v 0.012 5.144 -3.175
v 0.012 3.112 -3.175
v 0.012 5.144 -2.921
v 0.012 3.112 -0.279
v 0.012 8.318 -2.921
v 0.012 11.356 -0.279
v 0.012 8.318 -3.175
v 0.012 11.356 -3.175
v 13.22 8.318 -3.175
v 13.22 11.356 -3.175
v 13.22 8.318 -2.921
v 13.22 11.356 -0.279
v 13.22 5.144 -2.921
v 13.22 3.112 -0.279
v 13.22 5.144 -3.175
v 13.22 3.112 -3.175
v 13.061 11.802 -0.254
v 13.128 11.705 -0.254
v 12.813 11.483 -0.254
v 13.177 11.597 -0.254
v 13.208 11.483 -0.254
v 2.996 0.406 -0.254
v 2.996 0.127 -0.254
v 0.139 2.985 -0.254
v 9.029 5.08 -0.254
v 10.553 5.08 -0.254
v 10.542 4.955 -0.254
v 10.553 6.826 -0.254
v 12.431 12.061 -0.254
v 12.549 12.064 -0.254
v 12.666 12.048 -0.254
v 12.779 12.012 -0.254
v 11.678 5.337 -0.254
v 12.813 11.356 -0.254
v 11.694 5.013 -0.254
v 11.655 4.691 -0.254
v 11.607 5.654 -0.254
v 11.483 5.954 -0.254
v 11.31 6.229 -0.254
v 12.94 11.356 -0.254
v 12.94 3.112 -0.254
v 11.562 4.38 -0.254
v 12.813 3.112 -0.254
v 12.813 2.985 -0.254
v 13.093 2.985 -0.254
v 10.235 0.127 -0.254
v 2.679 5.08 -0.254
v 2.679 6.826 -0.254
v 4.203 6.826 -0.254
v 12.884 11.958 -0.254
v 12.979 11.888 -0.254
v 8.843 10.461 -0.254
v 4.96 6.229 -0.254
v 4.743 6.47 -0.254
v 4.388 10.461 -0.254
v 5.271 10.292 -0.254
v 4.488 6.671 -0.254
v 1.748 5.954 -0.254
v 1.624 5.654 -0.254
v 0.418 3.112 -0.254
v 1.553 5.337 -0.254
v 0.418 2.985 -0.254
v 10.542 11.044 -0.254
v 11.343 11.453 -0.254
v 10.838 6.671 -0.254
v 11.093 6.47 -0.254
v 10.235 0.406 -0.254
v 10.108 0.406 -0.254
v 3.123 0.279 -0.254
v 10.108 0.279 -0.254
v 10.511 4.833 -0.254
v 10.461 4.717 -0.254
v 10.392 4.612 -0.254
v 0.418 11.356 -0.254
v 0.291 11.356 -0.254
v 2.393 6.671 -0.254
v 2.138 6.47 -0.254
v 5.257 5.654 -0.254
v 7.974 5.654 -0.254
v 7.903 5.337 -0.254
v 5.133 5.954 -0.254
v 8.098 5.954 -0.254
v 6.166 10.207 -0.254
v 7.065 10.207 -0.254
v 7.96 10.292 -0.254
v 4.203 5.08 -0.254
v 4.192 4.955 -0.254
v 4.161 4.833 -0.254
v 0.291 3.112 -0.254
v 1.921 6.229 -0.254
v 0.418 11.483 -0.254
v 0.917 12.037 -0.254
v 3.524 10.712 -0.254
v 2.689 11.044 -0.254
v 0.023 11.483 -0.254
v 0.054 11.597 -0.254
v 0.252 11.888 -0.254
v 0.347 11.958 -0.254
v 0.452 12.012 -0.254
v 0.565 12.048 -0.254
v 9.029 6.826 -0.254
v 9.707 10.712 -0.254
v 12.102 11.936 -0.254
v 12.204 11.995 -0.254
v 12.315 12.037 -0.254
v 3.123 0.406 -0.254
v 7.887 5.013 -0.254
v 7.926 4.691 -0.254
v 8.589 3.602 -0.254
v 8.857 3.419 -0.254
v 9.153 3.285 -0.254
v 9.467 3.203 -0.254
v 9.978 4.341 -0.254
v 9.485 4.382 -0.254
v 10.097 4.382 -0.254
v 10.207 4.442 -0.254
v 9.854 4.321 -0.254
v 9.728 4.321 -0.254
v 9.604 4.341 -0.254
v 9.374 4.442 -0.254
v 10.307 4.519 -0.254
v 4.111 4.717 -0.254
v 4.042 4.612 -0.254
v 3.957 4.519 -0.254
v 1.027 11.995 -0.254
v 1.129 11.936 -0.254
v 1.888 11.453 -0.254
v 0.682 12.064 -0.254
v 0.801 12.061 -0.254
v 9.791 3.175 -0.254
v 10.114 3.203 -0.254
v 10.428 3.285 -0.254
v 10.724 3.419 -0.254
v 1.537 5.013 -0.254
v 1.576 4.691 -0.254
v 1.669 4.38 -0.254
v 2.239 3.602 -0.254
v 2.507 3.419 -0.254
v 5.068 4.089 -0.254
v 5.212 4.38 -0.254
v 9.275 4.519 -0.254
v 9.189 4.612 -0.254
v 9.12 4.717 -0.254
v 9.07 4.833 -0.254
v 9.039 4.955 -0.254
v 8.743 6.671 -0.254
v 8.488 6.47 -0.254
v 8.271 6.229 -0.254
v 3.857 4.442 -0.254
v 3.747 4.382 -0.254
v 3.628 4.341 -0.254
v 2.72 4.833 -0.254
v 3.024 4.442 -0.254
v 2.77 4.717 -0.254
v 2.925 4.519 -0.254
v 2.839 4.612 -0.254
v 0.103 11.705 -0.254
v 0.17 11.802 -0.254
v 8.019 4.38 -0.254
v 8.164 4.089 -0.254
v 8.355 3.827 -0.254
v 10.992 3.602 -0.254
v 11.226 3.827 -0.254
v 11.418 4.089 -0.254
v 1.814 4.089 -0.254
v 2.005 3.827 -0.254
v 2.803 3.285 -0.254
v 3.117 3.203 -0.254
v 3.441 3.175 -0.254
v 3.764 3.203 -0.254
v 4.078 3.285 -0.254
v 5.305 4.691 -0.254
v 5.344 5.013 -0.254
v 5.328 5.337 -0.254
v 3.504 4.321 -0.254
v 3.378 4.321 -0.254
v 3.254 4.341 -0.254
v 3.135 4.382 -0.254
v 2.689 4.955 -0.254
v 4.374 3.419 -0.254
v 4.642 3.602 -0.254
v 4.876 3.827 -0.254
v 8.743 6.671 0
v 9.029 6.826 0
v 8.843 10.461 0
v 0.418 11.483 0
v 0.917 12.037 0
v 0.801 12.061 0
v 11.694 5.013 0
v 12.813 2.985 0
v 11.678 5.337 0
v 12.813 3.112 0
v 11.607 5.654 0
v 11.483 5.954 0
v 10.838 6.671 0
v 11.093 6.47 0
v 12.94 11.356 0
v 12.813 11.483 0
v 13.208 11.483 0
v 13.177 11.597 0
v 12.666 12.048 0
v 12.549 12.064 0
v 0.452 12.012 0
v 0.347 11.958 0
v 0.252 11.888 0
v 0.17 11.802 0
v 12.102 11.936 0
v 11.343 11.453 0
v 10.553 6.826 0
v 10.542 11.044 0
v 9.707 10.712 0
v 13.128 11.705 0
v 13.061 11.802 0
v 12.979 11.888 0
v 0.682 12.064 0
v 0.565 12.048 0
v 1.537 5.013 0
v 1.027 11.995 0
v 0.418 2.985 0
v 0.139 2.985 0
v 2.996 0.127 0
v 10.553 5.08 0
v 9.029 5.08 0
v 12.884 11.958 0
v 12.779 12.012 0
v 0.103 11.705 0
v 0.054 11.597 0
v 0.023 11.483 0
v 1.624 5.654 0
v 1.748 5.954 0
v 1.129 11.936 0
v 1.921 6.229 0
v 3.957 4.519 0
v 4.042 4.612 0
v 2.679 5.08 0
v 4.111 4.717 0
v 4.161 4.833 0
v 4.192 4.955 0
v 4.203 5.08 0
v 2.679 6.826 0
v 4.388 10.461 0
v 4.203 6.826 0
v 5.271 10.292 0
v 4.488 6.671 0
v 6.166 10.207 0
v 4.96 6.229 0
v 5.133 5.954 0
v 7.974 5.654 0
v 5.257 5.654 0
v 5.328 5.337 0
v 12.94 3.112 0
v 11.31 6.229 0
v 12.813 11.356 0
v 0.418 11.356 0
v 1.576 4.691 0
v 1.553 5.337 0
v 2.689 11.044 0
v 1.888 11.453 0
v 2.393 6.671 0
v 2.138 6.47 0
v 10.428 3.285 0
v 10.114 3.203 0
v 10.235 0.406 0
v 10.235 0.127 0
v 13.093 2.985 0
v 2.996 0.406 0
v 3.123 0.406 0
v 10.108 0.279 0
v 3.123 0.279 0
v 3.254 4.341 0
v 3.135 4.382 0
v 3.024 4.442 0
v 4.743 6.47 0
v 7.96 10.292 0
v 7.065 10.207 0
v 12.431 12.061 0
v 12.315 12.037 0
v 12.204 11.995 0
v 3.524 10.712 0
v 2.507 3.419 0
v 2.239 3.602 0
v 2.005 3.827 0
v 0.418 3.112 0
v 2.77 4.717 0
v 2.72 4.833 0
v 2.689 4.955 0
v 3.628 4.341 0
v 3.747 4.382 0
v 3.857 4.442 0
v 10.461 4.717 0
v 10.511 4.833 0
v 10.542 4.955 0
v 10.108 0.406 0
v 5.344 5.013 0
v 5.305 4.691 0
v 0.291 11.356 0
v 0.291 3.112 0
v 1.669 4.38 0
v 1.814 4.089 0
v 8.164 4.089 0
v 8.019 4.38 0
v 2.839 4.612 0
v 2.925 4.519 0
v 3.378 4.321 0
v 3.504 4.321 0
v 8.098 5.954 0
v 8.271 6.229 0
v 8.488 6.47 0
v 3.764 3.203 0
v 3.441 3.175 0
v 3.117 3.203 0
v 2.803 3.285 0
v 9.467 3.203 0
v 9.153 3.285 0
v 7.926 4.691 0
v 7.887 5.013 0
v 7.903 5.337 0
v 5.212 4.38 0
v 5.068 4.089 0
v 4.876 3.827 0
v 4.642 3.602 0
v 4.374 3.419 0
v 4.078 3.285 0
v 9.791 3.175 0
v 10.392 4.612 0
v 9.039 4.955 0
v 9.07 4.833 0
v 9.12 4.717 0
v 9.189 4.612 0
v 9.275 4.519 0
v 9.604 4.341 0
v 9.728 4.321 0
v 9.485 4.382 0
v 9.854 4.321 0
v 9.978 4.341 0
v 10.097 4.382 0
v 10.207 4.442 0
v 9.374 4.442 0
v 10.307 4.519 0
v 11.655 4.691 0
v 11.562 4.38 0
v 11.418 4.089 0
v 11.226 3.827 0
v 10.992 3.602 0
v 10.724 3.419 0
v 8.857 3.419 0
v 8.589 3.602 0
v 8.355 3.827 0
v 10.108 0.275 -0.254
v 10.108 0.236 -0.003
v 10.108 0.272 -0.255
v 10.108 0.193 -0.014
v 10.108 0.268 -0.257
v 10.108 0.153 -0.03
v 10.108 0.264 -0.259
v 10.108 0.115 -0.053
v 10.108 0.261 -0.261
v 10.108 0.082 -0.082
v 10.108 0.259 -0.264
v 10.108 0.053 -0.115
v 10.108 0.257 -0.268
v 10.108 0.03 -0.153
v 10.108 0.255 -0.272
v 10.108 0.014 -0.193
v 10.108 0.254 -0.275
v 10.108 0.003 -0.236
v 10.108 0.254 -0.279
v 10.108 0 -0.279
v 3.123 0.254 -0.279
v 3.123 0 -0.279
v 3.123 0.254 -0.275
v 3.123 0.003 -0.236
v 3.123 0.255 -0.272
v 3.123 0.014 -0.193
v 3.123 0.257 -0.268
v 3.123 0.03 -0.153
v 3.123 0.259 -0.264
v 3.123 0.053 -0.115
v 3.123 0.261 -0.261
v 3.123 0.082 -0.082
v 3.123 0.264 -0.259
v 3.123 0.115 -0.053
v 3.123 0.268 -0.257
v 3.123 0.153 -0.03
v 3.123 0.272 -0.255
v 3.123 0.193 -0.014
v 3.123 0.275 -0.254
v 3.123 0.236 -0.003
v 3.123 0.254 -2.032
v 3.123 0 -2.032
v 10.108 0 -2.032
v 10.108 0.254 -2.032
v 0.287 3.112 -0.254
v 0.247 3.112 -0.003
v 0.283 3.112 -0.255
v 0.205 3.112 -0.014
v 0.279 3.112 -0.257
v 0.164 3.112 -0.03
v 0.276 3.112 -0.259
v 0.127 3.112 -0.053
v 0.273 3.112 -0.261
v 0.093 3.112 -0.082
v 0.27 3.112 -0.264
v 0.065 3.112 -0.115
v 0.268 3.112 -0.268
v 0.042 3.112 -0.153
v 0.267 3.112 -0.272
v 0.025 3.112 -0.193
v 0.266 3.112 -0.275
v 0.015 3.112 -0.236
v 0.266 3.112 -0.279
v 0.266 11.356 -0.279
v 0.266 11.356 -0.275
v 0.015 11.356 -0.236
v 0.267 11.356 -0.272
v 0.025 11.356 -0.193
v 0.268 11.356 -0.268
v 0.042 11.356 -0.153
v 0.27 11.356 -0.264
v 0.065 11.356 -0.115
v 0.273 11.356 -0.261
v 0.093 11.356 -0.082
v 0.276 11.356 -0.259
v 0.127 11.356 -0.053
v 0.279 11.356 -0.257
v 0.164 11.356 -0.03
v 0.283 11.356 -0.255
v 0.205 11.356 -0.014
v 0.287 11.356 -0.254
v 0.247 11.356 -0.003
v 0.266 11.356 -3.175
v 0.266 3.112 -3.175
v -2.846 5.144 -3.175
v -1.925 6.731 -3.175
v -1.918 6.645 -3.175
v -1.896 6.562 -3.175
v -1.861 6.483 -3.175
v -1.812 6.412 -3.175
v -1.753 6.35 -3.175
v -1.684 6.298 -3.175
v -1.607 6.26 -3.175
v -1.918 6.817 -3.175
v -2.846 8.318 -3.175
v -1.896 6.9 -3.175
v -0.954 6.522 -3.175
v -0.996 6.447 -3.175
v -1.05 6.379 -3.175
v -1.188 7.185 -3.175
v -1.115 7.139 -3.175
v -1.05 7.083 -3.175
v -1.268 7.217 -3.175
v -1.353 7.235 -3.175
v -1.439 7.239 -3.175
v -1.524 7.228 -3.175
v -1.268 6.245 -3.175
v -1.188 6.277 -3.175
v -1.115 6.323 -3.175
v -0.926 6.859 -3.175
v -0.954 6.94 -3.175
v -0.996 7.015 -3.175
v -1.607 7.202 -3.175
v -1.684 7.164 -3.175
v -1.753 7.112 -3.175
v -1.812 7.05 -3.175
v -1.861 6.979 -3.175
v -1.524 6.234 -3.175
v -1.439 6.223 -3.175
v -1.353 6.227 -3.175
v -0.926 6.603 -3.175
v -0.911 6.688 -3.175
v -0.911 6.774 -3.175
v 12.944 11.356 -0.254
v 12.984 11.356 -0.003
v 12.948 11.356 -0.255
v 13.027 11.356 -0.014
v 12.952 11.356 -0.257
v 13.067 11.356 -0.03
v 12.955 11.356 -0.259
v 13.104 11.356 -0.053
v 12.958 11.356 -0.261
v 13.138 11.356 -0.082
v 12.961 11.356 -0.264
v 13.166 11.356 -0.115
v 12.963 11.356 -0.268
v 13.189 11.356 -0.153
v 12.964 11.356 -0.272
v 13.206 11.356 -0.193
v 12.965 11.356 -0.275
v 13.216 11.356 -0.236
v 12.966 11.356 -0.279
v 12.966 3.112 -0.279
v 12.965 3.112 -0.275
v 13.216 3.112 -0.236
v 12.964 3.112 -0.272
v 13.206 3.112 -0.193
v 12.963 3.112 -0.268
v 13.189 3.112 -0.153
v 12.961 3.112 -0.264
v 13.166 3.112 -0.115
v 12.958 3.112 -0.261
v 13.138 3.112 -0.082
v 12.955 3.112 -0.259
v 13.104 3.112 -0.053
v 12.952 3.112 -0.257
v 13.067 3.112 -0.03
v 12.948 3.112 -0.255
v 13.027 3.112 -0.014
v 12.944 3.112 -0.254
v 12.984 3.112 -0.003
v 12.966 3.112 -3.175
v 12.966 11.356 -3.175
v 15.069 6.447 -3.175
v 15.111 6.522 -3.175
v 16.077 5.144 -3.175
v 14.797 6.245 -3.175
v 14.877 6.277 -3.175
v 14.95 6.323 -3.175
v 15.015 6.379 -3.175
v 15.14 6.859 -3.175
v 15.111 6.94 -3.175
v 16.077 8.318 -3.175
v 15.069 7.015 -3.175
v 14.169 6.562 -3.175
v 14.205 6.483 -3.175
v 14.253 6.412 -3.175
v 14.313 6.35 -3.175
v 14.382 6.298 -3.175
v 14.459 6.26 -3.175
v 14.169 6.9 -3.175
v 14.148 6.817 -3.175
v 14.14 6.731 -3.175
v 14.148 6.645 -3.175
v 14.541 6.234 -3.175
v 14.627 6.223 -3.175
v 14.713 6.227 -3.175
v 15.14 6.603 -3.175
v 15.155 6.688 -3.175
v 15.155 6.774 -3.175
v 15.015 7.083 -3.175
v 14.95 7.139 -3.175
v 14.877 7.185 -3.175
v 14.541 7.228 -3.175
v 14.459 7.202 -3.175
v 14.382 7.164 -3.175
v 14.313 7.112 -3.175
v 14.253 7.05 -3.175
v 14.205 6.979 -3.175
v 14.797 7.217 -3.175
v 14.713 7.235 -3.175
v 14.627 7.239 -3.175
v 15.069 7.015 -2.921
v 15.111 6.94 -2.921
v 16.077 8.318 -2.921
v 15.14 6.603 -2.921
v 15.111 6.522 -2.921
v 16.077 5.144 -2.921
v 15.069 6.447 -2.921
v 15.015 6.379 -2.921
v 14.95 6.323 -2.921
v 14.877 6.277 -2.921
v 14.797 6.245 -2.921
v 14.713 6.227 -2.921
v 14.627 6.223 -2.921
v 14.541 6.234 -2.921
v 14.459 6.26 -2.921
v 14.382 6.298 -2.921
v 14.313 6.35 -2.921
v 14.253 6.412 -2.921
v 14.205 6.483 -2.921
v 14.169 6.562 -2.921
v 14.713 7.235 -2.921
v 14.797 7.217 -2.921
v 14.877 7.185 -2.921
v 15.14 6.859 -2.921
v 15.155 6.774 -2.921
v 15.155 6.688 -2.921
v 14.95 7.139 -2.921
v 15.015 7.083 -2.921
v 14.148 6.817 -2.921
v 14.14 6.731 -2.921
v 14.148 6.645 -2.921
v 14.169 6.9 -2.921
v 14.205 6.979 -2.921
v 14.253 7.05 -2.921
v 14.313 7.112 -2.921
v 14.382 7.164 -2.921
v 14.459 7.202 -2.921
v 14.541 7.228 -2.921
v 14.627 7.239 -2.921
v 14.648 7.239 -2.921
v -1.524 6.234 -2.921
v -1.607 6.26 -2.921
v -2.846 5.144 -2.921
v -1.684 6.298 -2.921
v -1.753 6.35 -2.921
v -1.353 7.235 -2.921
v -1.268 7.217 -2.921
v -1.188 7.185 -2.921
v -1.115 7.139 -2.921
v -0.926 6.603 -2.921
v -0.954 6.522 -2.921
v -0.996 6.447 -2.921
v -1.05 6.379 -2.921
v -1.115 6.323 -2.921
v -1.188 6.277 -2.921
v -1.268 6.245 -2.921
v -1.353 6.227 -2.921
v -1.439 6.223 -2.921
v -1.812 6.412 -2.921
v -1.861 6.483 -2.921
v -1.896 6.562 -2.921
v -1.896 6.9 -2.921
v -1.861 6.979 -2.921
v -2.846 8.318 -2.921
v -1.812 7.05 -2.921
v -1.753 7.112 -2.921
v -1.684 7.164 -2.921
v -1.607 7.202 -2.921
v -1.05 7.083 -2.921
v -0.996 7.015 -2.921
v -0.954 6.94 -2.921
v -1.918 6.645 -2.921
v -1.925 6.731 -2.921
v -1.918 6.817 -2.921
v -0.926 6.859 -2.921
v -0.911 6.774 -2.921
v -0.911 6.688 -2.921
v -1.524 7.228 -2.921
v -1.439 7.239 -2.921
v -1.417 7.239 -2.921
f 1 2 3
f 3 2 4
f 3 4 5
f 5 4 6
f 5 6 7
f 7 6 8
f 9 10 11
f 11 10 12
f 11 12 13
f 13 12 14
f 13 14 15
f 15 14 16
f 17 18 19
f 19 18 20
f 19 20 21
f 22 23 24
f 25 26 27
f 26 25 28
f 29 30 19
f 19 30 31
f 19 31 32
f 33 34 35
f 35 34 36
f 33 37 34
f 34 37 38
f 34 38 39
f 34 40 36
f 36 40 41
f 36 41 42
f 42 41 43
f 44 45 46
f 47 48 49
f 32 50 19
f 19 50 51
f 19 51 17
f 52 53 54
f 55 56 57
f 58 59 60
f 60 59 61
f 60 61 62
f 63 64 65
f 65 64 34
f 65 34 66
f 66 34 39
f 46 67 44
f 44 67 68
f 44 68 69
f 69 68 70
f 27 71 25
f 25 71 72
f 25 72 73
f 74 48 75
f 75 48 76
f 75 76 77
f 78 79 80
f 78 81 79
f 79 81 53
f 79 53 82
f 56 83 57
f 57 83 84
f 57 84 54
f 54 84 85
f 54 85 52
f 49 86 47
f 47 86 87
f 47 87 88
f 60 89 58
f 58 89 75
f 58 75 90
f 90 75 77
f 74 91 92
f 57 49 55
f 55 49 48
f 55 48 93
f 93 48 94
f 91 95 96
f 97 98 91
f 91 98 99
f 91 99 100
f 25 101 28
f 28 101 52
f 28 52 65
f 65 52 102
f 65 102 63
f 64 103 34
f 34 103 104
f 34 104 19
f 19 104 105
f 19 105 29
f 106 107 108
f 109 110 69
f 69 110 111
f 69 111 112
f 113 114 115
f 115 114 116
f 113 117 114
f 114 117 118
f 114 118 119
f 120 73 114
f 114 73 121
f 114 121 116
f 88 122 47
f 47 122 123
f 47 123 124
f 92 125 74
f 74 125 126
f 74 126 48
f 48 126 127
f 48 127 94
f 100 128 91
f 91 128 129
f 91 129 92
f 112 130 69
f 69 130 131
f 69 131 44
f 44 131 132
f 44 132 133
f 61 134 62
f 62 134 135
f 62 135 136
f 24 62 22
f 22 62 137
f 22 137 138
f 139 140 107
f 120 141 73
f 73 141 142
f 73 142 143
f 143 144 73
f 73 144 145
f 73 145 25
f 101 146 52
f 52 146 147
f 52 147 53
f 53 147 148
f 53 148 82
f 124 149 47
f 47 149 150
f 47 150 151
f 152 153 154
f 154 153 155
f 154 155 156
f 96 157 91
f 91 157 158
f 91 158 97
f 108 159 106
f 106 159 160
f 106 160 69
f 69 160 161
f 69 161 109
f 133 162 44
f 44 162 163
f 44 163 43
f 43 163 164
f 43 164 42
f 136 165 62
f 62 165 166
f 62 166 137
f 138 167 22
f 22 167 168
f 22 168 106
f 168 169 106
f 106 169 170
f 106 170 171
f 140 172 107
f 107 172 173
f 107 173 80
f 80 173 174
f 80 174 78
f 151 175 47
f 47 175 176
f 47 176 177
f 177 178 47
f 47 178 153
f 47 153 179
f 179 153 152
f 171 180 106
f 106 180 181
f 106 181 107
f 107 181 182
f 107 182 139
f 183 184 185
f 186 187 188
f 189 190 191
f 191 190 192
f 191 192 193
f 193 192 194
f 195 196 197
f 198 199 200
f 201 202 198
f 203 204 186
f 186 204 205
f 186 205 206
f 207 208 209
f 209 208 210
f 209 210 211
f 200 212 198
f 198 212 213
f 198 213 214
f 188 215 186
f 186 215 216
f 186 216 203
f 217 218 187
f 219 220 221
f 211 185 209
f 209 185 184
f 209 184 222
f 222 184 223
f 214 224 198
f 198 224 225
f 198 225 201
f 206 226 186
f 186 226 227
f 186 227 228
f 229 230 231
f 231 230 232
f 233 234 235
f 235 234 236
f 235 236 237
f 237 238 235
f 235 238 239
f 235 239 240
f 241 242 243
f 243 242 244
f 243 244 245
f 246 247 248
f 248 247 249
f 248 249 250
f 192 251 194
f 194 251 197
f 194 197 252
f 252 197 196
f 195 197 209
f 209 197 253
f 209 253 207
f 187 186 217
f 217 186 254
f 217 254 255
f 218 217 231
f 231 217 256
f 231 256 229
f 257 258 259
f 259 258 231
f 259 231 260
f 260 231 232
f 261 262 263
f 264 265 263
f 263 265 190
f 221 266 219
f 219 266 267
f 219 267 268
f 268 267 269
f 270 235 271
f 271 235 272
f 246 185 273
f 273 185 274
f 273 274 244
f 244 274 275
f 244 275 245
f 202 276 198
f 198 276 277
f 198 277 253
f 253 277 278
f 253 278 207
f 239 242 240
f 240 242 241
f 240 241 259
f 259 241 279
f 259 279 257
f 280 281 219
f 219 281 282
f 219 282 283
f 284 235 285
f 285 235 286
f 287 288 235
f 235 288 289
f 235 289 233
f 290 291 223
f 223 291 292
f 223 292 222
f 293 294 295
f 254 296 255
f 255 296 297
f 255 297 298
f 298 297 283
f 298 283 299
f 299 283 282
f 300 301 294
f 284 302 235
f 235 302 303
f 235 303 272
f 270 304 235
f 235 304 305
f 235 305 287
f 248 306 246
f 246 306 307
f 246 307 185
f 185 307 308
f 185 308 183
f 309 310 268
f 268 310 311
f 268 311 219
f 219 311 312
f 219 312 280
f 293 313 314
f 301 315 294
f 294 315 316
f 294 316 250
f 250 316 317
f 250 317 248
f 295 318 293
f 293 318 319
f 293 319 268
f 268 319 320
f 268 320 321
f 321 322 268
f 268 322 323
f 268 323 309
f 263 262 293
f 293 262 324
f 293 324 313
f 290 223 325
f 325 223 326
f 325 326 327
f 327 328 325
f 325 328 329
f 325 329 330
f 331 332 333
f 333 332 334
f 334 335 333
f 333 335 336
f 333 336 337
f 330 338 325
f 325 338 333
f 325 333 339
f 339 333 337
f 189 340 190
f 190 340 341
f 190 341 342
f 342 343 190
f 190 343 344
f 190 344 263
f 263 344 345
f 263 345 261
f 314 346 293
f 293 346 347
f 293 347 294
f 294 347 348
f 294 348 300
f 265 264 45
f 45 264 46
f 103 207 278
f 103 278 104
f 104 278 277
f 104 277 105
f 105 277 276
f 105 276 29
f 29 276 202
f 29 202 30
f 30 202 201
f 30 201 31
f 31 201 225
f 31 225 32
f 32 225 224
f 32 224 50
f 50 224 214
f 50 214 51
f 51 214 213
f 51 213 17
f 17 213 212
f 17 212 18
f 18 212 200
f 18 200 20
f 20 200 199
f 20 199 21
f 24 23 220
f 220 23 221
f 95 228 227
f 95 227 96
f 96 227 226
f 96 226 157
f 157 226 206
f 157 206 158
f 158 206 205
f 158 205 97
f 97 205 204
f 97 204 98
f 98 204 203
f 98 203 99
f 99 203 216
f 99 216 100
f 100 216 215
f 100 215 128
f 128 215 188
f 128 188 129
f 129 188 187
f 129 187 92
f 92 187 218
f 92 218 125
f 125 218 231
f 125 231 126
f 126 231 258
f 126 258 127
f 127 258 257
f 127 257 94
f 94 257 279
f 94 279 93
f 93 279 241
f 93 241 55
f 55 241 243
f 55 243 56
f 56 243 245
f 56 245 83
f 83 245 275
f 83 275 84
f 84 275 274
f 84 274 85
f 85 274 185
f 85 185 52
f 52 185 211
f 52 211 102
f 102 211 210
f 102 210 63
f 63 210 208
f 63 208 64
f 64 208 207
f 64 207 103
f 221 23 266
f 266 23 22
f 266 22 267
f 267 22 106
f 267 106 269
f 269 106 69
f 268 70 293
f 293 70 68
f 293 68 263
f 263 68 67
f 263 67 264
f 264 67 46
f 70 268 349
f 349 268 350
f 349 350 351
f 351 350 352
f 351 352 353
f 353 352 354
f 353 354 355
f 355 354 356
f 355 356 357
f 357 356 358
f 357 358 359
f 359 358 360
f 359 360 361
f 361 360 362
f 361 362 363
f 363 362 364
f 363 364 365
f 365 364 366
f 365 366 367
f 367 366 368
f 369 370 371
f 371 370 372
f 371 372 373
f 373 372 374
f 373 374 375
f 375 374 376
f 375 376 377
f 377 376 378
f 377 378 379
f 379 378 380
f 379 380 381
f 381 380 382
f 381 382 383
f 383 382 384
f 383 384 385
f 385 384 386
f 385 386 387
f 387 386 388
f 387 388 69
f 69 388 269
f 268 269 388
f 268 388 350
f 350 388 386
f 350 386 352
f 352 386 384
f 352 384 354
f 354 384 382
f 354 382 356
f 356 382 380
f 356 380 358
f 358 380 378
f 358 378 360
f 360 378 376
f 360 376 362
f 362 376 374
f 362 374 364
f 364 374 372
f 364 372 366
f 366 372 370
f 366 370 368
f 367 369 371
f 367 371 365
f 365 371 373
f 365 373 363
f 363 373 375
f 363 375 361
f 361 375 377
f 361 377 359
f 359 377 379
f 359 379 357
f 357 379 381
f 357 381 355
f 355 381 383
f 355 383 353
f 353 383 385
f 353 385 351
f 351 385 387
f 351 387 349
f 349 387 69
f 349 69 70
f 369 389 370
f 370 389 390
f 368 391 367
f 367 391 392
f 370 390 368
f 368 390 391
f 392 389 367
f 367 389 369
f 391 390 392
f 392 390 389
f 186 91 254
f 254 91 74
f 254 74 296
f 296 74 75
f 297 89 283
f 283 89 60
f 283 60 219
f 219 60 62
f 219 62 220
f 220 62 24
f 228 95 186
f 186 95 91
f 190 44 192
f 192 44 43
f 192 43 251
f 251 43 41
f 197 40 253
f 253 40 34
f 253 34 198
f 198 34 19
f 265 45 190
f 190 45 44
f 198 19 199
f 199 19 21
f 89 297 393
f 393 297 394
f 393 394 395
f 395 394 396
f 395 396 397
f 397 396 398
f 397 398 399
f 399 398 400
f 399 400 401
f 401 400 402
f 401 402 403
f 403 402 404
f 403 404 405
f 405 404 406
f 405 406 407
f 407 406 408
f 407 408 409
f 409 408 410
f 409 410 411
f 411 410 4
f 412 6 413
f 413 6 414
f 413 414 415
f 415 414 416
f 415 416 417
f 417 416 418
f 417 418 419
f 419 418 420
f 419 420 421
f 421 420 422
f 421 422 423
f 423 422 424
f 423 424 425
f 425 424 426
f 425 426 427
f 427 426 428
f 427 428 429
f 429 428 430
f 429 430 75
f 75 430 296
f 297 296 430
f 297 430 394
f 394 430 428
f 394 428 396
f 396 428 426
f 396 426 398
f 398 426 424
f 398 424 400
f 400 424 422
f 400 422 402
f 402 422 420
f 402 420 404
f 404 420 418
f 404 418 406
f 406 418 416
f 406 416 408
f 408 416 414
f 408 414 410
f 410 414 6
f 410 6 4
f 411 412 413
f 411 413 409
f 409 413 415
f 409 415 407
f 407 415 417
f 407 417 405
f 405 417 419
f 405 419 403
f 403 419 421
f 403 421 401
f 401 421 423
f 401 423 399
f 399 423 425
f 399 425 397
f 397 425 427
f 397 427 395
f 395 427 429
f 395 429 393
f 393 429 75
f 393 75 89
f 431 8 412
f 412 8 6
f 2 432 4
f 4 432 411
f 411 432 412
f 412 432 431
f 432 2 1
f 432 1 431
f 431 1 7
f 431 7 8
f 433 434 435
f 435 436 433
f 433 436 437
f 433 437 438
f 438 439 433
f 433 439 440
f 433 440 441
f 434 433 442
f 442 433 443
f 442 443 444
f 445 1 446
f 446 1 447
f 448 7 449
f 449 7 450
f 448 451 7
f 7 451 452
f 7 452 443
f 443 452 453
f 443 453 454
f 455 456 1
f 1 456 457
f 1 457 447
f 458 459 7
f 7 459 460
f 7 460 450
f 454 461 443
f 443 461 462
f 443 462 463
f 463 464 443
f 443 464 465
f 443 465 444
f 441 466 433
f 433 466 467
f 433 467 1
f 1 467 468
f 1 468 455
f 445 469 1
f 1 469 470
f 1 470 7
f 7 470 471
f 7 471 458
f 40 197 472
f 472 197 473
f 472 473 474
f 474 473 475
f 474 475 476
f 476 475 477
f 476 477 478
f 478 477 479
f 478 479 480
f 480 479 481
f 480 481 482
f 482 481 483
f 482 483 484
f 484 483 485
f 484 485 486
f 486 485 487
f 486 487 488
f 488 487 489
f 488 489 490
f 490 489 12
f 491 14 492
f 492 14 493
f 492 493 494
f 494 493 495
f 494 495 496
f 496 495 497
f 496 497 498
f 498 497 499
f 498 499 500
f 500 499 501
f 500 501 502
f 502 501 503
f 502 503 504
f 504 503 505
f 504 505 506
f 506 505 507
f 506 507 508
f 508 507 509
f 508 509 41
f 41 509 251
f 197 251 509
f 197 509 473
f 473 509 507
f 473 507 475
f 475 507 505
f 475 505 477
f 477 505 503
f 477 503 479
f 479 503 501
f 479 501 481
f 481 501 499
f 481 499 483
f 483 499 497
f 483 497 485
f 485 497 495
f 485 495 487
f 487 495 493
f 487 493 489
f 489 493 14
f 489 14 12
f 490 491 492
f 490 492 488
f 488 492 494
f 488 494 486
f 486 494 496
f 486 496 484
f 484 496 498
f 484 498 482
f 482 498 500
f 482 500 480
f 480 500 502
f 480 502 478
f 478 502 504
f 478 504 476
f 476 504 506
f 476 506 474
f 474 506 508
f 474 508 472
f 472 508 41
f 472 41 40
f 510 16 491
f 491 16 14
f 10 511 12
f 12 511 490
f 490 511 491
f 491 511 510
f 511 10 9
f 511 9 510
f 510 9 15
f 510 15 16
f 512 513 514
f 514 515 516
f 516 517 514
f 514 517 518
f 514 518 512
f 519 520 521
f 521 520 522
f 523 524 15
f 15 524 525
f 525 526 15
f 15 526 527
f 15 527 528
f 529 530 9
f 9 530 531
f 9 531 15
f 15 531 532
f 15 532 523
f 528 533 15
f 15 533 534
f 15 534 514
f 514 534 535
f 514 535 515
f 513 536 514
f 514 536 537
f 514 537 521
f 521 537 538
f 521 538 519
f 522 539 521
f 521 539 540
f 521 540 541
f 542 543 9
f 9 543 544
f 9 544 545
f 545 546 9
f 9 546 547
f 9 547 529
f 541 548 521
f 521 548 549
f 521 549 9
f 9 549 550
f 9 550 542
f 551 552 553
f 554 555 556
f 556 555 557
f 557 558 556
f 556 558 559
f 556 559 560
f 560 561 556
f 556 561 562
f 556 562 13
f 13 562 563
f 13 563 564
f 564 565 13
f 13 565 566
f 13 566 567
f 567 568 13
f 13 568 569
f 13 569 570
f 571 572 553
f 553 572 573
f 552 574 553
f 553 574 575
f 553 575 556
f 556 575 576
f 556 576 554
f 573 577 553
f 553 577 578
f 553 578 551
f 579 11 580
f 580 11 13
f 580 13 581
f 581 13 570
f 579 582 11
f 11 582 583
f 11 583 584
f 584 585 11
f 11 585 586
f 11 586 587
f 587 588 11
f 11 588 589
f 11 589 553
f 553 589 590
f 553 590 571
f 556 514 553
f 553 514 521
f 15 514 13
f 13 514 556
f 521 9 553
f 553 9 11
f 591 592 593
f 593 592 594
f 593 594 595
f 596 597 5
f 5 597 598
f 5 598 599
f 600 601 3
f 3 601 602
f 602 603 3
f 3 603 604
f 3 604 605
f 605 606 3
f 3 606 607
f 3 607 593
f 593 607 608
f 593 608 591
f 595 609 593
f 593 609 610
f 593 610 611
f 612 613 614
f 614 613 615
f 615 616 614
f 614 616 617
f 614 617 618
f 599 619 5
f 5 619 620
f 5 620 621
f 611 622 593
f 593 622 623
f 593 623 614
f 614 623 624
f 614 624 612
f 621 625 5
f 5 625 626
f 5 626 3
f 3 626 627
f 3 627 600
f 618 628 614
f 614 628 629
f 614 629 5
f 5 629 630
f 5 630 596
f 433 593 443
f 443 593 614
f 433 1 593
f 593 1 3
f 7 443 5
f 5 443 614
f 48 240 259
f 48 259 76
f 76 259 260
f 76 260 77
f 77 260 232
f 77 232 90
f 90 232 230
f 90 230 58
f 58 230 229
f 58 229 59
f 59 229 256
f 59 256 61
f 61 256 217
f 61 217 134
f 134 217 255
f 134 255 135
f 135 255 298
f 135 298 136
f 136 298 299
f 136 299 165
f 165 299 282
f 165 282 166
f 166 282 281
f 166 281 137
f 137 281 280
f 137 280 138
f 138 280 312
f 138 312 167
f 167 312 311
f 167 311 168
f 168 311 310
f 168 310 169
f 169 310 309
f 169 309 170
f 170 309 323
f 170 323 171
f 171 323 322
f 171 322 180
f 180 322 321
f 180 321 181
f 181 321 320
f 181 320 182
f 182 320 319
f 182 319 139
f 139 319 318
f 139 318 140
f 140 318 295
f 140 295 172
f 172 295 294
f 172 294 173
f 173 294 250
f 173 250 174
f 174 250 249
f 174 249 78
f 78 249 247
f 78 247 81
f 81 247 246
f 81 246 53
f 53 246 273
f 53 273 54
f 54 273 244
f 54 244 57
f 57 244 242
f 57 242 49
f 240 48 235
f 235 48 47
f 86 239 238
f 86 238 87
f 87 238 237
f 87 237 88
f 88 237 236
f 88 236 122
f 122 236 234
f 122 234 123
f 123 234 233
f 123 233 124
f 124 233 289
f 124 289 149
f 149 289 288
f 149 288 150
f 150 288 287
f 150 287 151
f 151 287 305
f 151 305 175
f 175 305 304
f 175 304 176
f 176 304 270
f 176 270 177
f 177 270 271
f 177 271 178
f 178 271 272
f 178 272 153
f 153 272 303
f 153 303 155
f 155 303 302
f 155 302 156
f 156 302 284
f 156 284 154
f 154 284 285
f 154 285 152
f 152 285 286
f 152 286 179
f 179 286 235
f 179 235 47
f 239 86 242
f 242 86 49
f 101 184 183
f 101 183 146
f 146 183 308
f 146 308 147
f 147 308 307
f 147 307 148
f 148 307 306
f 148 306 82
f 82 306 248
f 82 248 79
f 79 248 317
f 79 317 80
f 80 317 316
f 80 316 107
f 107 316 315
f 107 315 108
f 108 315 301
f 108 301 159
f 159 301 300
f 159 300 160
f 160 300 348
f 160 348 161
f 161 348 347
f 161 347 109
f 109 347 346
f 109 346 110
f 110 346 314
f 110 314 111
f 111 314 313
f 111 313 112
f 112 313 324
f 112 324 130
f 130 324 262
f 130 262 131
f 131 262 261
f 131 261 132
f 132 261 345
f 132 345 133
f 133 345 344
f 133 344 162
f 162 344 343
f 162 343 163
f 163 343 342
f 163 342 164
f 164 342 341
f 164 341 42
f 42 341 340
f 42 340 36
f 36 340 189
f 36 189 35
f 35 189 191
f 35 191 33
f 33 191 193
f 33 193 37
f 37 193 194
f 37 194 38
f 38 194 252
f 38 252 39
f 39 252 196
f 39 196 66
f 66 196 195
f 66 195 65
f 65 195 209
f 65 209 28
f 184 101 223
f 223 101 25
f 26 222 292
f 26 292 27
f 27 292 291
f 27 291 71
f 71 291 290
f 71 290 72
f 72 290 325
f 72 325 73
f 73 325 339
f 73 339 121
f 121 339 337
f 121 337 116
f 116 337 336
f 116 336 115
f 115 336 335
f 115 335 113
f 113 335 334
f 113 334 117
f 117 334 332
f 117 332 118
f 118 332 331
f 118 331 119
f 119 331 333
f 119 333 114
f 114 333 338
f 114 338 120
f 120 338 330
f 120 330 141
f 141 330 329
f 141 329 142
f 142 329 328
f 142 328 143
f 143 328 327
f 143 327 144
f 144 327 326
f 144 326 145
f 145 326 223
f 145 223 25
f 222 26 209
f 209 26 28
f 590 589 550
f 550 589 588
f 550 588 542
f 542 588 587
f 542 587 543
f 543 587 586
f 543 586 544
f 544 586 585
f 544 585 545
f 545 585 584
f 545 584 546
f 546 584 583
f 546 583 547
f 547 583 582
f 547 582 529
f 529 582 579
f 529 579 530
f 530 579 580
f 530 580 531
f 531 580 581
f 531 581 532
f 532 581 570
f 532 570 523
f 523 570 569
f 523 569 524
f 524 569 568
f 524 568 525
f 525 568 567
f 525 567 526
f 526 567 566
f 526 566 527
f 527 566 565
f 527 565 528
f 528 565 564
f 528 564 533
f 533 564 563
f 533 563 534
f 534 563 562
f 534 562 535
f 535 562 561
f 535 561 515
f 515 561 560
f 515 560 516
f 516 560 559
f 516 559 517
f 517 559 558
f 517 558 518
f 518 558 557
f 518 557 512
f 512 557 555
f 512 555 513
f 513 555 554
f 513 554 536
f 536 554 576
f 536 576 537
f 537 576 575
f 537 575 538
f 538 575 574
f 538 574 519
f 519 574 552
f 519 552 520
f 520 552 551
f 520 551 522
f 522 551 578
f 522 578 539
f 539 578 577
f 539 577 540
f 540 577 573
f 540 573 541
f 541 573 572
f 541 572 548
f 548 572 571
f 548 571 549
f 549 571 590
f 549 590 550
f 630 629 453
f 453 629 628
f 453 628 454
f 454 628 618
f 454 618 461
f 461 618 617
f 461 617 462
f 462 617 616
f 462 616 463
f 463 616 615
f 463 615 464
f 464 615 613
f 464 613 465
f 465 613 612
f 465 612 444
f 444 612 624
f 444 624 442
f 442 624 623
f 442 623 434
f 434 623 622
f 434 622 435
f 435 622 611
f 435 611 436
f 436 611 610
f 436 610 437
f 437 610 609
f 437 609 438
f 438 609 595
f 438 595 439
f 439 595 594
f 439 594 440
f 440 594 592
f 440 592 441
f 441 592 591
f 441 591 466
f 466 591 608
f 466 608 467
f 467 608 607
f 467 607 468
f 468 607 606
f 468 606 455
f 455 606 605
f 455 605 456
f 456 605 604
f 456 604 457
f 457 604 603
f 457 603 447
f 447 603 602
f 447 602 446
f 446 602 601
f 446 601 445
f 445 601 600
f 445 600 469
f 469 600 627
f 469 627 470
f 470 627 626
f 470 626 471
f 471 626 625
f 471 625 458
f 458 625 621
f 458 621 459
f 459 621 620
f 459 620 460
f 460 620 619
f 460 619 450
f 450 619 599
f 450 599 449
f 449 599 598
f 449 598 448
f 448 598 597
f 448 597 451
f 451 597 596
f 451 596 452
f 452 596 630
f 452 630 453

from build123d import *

# Parameters (mm, degrees)
BASE_FLANGE1_DEPTH              = 0.254
EDGE_FLANGE1_STRIP_W            = 1.0668
EDGE_FLANGE1_STRIP_H            = 0.254
EDGE_FLANGE1_STRIP_CUT_DEPTH    = 6.985
EDGE_FLANGE1_RELIEF_W           = 1.1938
EDGE_FLANGE1_RELIEF_H           = 0.127
EDGE_FLANGE1_RELIEF_CUT_DEPTH   = 0.254
EDGE_FLANGE1_DEPTH              = 6.985
EDGE_FLANGE2_STRIP_W            = 1.0668
EDGE_FLANGE2_STRIP_H            = 0.254
EDGE_FLANGE2_STRIP_CUT_DEPTH    = 8.244248495
EDGE_FLANGE2_RELIEF_W           = 1.1938
EDGE_FLANGE2_RELIEF_H           = 0.127
EDGE_FLANGE2_RELIEF_CUT_DEPTH   = 0.254
EDGE_FLANGE2_STRIP_2_W          = 1.0668
EDGE_FLANGE2_STRIP_2_H          = 0.254
EDGE_FLANGE2_STRIP_CUT_2_DEPTH  = 8.244248495
EDGE_FLANGE2_RELIEF_2_W         = 1.1938
EDGE_FLANGE2_RELIEF_2_H         = 0.127
EDGE_FLANGE2_RELIEF_CUT_2_DEPTH = 0.254
EDGE_FLANGE2_DEPTH              = 8.244248495
EDGE_FLANGE2_BEND_DEPTH         = 8.244248495
EXTRUDE_THIN1_START             = -1.5875
EXTRUDE_THIN1_OUTLINE_W         = 2.8575
EXTRUDE_THIN1_OUTLINE_H         = 0.254
EXTRUDE_THIN1_DEPTH             = 3.175
CUT_EXTRUDE1_REACH              = 22.35
CUT_EXTRUDE2_REACH              = 22.35
SKETCH23_R                      = 0.508


# Read off the part's stored shape, not the designer's step: Extrude-Thin1
# Sheet-metal steps are written as plain solids
with BuildPart() as part:
    # Sketch1 → Base-Flange1 (new body)
    with BuildSketch(Plane.XY):
        with BuildLine():
            Line((3.123097979, 0), (10.108097979, 0))
            Line((10.108097979, 0), (13.219597979, 3.1115))
            Line((13.219597979, 3.1115), (13.219597979, 11.355748495))
            ThreePointArc((13.219597979, 11.355748495), (12.836917178, 11.985343025), (12.101830107, 11.935534727))
            ThreePointArc((12.101830107, 11.935534727), (6.615597979, 10.196861335), (1.129365852, 11.935534727))
            ThreePointArc((1.129365852, 11.935534727), (0.39427878, 11.985343025), (0.011597979, 11.355748495))
            Line((0.011597979, 11.355748495), (0.011597979, 3.1115))
            Line((0.011597979, 3.1115), (3.123097979, 0))
        make_face()
    extrude(amount=-BASE_FLANGE1_DEPTH)

    # Edge-Flange1 strip (across the edge) → Edge-Flange1 strip cut (cut)
    with BuildSketch(Plane(origin=(10.108097979, 0, -0.254), x_dir=(0, 1, 0), z_dir=(-1, 0, 0))):
        with Locations((-0.254, -0.127)):
            Rectangle(EDGE_FLANGE1_STRIP_W, EDGE_FLANGE1_STRIP_H)
    extrude(amount=EDGE_FLANGE1_STRIP_CUT_DEPTH, mode=Mode.SUBTRACT)

    # Edge-Flange1 relief (on the sheet) → Edge-Flange1 relief cut (cut)
    with BuildSketch(Plane(origin=(10.108097979, 0.2794, -0.254), x_dir=(0, 1, 0), z_dir=(0, 0, -1))):
        with Locations((-0.4699, 0.0635)):
            Rectangle(EDGE_FLANGE1_RELIEF_W, EDGE_FLANGE1_RELIEF_H)
        with Locations((-0.4699, -7.0485)):
            Rectangle(EDGE_FLANGE1_RELIEF_W, EDGE_FLANGE1_RELIEF_H)
    extrude(amount=-EDGE_FLANGE1_RELIEF_CUT_DEPTH, mode=Mode.SUBTRACT)

    # Edge-Flange1 section (across the edge) → Edge-Flange1 (add)
    with BuildSketch(Plane(origin=(10.108097979, 0, -0.254), x_dir=(0, 1, 0), z_dir=(-1, 0, 0))):
        with BuildLine():
            Line((0, 0.0254), (0, 1.778))
            Line((0, 1.778), (0.254, 1.778))
            Line((0.254, 1.778), (0.254, 0.0254))
            ThreePointArc((0.254, 0.0254), (0.261439488, 0.007439488), (0.2794, 0))
            Line((0.2794, 0), (0.2794, -0.254))
            ThreePointArc((0.2794, -0.254), (0.081834365, -0.172165635), (0, 0.0254))
        make_face()
    extrude(amount=EDGE_FLANGE1_DEPTH)

    # Edge-Flange2 strip (across the edge) → Edge-Flange2 strip cut (cut)
    with BuildSketch(Plane(origin=(0.011597979, 3.1115, -0.254), x_dir=(1, 0, 0), z_dir=(0, 1, 0))):
        with Locations((-0.254, -0.127)):
            Rectangle(EDGE_FLANGE2_STRIP_W, EDGE_FLANGE2_STRIP_H)
    extrude(amount=EDGE_FLANGE2_STRIP_CUT_DEPTH, mode=Mode.SUBTRACT)

    # Edge-Flange2 relief (on the sheet) → Edge-Flange2 relief cut (cut)
    with BuildSketch(Plane(origin=(0.290997979, 3.1115, -0.254), x_dir=(1, 0, 0), z_dir=(0, 0, -1))):
        with Locations((-0.4699, 0.0635)):
            Rectangle(EDGE_FLANGE2_RELIEF_W, EDGE_FLANGE2_RELIEF_H)
        with Locations((-0.4699, -8.307748495)):
            Rectangle(EDGE_FLANGE2_RELIEF_W, EDGE_FLANGE2_RELIEF_H)
    extrude(amount=-EDGE_FLANGE2_RELIEF_CUT_DEPTH, mode=Mode.SUBTRACT)

    # Edge-Flange2 strip 2 (across the edge) → Edge-Flange2 strip cut 2 (cut)
    with BuildSketch(Plane(origin=(13.219597979, 11.355748495, -0.254), x_dir=(-1, 0, 0), z_dir=(0, -1, 0))):
        with Locations((-0.254, -0.127)):
            Rectangle(EDGE_FLANGE2_STRIP_2_W, EDGE_FLANGE2_STRIP_2_H)
    extrude(amount=EDGE_FLANGE2_STRIP_CUT_2_DEPTH, mode=Mode.SUBTRACT)

    # Edge-Flange2 relief 2 (on the sheet) → Edge-Flange2 relief cut 2 (cut)
    with BuildSketch(Plane(origin=(12.940197979, 11.355748495, -0.254), x_dir=(-1, 0, 0), z_dir=(0, 0, -1))):
        with Locations((-0.4699, 0.0635)):
            Rectangle(EDGE_FLANGE2_RELIEF_2_W, EDGE_FLANGE2_RELIEF_2_H)
        with Locations((-0.4699, -8.307748495)):
            Rectangle(EDGE_FLANGE2_RELIEF_2_W, EDGE_FLANGE2_RELIEF_2_H)
    extrude(amount=-EDGE_FLANGE2_RELIEF_CUT_2_DEPTH, mode=Mode.SUBTRACT)

    # Edge-Flange2 section (across the edge) → Edge-Flange2 (add)
    with BuildSketch(Plane(origin=(0.011597979, 3.1115, -0.254), x_dir=(1, 0, 0), z_dir=(0, 1, 0))):
        with BuildLine():
            Line((0, 0.0254), (0, 2.921))
            Line((0, 2.921), (0.254, 2.921))
            Line((0.254, 2.921), (0.254, 0.0254))
            ThreePointArc((0.254, 0.0254), (0.261439488, 0.007439488), (0.2794, 0))
            Line((0.2794, 0), (0.2794, -0.254))
            ThreePointArc((0.2794, -0.254), (0.081834365, -0.172165635), (0, 0.0254))
        make_face()
    extrude(amount=EDGE_FLANGE2_DEPTH)

    # Edge-Flange2 section 2 (across the edge) → Edge-Flange2 bend (add)
    with BuildSketch(Plane(origin=(13.219597979, 11.355748495, -0.254), x_dir=(-1, 0, 0), z_dir=(0, -1, 0))):
        with BuildLine():
            Line((0, 0.0254), (0, 2.921))
            Line((0, 2.921), (0.254, 2.921))
            Line((0.254, 2.921), (0.254, 0.0254))
            ThreePointArc((0.254, 0.0254), (0.261439488, 0.007439488), (0.2794, 0))
            Line((0.2794, 0), (0.2794, -0.254))
            ThreePointArc((0.2794, -0.254), (0.081834365, -0.172165635), (0, 0.0254))
        make_face()
    extrude(amount=EDGE_FLANGE2_BEND_DEPTH)

    # Extrude-Thin1 outline → Extrude-Thin1 (add)
    with BuildSketch(Plane(origin=(0, 6.731, 0), x_dir=(-1, 0, 0), z_dir=(0, -1, 0)).offset(EXTRUDE_THIN1_START)):
        with Locations((1.417152021, 3.048)):
            Rectangle(EXTRUDE_THIN1_OUTLINE_W, EXTRUDE_THIN1_OUTLINE_H)
        with Locations((-14.648347979, 3.048)):
            Rectangle(EXTRUDE_THIN1_OUTLINE_W, EXTRUDE_THIN1_OUTLINE_H)
    extrude(amount=EXTRUDE_THIN1_DEPTH)

    # Sketch20 → Cut-Extrude1 (cut, up to next)
    with BuildSketch(Plane.XY, mode=Mode.PRIVATE) as cut_extrude1_sk1:
        with BuildLine():
            Line((2.678597979, 6.82596134), (2.678597979, 5.08))
            ThreePointArc((2.678597979, 5.08), (3.440597979, 4.318), (4.202597979, 5.08))
            Line((4.202597979, 5.08), (4.202597979, 6.82596134))
            ThreePointArc((4.202597979, 6.82596134), (3.440597979, 3.175), (2.678597979, 6.82596134))
        make_face()
    cut_extrude1_tool1 = extrude(cut_extrude1_sk1.sketch, amount=-CUT_EXTRUDE1_REACH, mode=Mode.PRIVATE) & part.part
    # Sketch20 → Cut-Extrude1 (cut, up to next)
    with BuildSketch(Plane.XY, mode=Mode.PRIVATE) as cut_extrude1_sk2:
        with BuildLine():
            Line((9.028597979, 6.82596134), (9.028597979, 5.08))
            ThreePointArc((9.028597979, 5.08), (9.790597979, 4.318), (10.552597979, 5.08))
            Line((10.552597979, 5.08), (10.552597979, 6.82596134))
            ThreePointArc((10.552597979, 6.82596134), (9.790597979, 3.175), (9.028597979, 6.82596134))
        make_face()
    cut_extrude1_tool2 = extrude(cut_extrude1_sk2.sketch, amount=-CUT_EXTRUDE1_REACH, mode=Mode.PRIVATE) & part.part
    add(cut_extrude1_tool1.solids().sort_by_distance((2.625829, 5.952981, 0))[0], mode=Mode.SUBTRACT)
    add(cut_extrude1_tool2.solids().sort_by_distance((10.605367, 5.952981, 0))[0], mode=Mode.SUBTRACT)

    # Sketch23 → Cut-Extrude2 (cut, up to next)
    with BuildSketch(Plane(origin=(0, 0, -3.175), x_dir=(-1, 0, 0), z_dir=(0, 0, -1)), mode=Mode.PRIVATE) as cut_extrude2_sk1:
        with Locations((-14.648347979, 6.731)):
            Circle(SKETCH23_R)
    cut_extrude2_tool1 = extrude(cut_extrude2_sk1.sketch, amount=-CUT_EXTRUDE2_REACH, mode=Mode.PRIVATE) & part.part
    # Sketch23 → Cut-Extrude2 (cut, up to next)
    with BuildSketch(Plane(origin=(0, 0, -3.175), x_dir=(-1, 0, 0), z_dir=(0, 0, -1)), mode=Mode.PRIVATE) as cut_extrude2_sk2:
        with Locations((1.417152021, 6.731)):
            Circle(SKETCH23_R)
    cut_extrude2_tool2 = extrude(cut_extrude2_sk2.sketch, amount=-CUT_EXTRUDE2_REACH, mode=Mode.PRIVATE) & part.part
    add(cut_extrude2_tool1.solids().sort_by_distance((14.648348, 6.731, -3.175))[0], mode=Mode.SUBTRACT)
    add(cut_extrude2_tool2.solids().sort_by_distance((-1.417152, 6.731, -3.175))[0], mode=Mode.SUBTRACT)


solid = part.part
